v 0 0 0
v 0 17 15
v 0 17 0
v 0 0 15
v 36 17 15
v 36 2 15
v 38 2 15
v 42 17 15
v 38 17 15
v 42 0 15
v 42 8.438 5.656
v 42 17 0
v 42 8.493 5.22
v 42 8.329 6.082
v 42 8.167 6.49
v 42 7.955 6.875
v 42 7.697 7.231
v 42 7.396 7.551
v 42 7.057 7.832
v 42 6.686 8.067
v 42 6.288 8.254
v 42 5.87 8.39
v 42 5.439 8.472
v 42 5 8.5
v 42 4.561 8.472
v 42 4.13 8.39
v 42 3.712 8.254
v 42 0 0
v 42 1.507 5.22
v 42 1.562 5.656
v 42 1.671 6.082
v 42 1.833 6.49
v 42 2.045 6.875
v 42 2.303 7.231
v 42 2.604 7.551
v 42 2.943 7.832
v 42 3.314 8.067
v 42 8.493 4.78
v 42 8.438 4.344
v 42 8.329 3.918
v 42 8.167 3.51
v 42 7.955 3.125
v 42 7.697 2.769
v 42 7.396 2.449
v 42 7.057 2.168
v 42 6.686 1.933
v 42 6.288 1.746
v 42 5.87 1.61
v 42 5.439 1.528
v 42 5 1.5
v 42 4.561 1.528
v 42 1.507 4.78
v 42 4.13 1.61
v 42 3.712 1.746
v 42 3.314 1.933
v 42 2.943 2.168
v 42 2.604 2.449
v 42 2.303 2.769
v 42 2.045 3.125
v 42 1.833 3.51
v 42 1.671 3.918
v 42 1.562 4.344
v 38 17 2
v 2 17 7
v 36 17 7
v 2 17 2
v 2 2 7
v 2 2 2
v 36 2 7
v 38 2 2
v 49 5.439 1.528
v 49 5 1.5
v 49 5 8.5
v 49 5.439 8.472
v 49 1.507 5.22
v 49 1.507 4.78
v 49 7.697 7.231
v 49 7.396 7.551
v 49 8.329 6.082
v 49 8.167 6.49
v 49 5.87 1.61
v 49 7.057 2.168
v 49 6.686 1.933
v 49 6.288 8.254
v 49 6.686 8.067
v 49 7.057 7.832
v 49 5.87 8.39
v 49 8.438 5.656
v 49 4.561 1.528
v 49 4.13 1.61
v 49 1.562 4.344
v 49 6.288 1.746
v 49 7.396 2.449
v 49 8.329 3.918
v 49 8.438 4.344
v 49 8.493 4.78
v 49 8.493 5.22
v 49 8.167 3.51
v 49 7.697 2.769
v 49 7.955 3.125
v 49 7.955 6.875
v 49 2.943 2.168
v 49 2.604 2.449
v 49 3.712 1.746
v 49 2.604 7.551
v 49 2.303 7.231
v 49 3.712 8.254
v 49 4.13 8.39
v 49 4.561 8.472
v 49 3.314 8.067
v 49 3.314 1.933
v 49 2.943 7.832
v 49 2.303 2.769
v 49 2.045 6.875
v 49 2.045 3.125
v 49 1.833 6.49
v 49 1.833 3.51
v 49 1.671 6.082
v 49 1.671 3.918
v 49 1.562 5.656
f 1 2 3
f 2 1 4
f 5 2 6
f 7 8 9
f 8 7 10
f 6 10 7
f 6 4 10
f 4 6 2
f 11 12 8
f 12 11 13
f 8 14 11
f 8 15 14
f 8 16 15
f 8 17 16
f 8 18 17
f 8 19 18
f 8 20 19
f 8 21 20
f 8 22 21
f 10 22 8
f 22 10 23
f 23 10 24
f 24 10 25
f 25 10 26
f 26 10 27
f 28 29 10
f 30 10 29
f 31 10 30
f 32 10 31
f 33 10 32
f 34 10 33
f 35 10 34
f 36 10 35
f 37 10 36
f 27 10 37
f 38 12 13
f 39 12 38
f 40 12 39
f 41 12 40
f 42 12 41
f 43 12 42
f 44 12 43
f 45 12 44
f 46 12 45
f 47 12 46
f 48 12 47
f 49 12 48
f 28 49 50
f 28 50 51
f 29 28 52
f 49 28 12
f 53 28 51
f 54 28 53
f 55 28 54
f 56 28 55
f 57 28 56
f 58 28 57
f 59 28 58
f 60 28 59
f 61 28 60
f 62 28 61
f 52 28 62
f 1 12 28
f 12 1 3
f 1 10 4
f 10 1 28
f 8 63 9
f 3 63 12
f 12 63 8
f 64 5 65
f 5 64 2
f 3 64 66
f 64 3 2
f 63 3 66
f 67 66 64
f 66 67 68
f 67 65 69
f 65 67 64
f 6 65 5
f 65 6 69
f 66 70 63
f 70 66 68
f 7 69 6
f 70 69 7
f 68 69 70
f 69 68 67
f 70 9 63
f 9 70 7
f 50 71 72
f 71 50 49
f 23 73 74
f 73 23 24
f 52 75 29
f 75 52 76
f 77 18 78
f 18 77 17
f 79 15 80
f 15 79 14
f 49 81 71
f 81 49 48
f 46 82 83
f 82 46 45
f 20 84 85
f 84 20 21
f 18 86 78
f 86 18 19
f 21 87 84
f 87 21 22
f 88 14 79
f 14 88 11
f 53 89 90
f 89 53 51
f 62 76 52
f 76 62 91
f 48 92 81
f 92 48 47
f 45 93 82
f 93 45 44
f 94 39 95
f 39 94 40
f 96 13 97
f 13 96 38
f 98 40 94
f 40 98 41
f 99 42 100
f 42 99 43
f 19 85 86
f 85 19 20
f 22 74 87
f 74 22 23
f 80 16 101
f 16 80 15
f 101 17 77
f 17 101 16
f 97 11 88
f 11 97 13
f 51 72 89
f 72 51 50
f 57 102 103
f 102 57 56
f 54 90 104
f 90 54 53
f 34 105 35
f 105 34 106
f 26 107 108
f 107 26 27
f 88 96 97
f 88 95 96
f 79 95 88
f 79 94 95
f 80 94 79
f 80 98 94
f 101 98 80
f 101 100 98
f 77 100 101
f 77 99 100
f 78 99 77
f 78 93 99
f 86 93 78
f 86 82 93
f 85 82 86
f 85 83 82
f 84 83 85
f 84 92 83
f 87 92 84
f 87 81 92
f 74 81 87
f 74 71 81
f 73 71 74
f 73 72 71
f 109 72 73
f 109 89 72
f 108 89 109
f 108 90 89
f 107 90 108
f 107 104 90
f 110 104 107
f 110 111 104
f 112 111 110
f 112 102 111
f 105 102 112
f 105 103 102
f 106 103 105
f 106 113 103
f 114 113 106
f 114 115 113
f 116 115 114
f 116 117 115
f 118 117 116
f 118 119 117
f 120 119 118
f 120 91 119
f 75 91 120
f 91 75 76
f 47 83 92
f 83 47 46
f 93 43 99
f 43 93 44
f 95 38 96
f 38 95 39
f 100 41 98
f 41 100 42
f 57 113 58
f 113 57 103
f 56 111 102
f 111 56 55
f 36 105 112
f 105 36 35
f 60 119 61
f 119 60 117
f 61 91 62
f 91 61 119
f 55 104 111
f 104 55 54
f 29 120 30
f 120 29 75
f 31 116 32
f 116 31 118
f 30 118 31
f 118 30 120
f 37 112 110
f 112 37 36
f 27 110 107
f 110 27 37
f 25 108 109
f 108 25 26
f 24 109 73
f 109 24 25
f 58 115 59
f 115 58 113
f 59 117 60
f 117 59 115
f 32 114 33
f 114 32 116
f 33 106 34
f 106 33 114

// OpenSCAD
$fn=50;

difference(){
    cube([42,17,15]);
    translate([2,2,2])cube([34,15,5]);
    translate([36,2,2])cube([2,15,13]);
}
translate([42,5,5]) rotate(90, v=[0,1,0]) cylinder(7,7/2,7/2);
